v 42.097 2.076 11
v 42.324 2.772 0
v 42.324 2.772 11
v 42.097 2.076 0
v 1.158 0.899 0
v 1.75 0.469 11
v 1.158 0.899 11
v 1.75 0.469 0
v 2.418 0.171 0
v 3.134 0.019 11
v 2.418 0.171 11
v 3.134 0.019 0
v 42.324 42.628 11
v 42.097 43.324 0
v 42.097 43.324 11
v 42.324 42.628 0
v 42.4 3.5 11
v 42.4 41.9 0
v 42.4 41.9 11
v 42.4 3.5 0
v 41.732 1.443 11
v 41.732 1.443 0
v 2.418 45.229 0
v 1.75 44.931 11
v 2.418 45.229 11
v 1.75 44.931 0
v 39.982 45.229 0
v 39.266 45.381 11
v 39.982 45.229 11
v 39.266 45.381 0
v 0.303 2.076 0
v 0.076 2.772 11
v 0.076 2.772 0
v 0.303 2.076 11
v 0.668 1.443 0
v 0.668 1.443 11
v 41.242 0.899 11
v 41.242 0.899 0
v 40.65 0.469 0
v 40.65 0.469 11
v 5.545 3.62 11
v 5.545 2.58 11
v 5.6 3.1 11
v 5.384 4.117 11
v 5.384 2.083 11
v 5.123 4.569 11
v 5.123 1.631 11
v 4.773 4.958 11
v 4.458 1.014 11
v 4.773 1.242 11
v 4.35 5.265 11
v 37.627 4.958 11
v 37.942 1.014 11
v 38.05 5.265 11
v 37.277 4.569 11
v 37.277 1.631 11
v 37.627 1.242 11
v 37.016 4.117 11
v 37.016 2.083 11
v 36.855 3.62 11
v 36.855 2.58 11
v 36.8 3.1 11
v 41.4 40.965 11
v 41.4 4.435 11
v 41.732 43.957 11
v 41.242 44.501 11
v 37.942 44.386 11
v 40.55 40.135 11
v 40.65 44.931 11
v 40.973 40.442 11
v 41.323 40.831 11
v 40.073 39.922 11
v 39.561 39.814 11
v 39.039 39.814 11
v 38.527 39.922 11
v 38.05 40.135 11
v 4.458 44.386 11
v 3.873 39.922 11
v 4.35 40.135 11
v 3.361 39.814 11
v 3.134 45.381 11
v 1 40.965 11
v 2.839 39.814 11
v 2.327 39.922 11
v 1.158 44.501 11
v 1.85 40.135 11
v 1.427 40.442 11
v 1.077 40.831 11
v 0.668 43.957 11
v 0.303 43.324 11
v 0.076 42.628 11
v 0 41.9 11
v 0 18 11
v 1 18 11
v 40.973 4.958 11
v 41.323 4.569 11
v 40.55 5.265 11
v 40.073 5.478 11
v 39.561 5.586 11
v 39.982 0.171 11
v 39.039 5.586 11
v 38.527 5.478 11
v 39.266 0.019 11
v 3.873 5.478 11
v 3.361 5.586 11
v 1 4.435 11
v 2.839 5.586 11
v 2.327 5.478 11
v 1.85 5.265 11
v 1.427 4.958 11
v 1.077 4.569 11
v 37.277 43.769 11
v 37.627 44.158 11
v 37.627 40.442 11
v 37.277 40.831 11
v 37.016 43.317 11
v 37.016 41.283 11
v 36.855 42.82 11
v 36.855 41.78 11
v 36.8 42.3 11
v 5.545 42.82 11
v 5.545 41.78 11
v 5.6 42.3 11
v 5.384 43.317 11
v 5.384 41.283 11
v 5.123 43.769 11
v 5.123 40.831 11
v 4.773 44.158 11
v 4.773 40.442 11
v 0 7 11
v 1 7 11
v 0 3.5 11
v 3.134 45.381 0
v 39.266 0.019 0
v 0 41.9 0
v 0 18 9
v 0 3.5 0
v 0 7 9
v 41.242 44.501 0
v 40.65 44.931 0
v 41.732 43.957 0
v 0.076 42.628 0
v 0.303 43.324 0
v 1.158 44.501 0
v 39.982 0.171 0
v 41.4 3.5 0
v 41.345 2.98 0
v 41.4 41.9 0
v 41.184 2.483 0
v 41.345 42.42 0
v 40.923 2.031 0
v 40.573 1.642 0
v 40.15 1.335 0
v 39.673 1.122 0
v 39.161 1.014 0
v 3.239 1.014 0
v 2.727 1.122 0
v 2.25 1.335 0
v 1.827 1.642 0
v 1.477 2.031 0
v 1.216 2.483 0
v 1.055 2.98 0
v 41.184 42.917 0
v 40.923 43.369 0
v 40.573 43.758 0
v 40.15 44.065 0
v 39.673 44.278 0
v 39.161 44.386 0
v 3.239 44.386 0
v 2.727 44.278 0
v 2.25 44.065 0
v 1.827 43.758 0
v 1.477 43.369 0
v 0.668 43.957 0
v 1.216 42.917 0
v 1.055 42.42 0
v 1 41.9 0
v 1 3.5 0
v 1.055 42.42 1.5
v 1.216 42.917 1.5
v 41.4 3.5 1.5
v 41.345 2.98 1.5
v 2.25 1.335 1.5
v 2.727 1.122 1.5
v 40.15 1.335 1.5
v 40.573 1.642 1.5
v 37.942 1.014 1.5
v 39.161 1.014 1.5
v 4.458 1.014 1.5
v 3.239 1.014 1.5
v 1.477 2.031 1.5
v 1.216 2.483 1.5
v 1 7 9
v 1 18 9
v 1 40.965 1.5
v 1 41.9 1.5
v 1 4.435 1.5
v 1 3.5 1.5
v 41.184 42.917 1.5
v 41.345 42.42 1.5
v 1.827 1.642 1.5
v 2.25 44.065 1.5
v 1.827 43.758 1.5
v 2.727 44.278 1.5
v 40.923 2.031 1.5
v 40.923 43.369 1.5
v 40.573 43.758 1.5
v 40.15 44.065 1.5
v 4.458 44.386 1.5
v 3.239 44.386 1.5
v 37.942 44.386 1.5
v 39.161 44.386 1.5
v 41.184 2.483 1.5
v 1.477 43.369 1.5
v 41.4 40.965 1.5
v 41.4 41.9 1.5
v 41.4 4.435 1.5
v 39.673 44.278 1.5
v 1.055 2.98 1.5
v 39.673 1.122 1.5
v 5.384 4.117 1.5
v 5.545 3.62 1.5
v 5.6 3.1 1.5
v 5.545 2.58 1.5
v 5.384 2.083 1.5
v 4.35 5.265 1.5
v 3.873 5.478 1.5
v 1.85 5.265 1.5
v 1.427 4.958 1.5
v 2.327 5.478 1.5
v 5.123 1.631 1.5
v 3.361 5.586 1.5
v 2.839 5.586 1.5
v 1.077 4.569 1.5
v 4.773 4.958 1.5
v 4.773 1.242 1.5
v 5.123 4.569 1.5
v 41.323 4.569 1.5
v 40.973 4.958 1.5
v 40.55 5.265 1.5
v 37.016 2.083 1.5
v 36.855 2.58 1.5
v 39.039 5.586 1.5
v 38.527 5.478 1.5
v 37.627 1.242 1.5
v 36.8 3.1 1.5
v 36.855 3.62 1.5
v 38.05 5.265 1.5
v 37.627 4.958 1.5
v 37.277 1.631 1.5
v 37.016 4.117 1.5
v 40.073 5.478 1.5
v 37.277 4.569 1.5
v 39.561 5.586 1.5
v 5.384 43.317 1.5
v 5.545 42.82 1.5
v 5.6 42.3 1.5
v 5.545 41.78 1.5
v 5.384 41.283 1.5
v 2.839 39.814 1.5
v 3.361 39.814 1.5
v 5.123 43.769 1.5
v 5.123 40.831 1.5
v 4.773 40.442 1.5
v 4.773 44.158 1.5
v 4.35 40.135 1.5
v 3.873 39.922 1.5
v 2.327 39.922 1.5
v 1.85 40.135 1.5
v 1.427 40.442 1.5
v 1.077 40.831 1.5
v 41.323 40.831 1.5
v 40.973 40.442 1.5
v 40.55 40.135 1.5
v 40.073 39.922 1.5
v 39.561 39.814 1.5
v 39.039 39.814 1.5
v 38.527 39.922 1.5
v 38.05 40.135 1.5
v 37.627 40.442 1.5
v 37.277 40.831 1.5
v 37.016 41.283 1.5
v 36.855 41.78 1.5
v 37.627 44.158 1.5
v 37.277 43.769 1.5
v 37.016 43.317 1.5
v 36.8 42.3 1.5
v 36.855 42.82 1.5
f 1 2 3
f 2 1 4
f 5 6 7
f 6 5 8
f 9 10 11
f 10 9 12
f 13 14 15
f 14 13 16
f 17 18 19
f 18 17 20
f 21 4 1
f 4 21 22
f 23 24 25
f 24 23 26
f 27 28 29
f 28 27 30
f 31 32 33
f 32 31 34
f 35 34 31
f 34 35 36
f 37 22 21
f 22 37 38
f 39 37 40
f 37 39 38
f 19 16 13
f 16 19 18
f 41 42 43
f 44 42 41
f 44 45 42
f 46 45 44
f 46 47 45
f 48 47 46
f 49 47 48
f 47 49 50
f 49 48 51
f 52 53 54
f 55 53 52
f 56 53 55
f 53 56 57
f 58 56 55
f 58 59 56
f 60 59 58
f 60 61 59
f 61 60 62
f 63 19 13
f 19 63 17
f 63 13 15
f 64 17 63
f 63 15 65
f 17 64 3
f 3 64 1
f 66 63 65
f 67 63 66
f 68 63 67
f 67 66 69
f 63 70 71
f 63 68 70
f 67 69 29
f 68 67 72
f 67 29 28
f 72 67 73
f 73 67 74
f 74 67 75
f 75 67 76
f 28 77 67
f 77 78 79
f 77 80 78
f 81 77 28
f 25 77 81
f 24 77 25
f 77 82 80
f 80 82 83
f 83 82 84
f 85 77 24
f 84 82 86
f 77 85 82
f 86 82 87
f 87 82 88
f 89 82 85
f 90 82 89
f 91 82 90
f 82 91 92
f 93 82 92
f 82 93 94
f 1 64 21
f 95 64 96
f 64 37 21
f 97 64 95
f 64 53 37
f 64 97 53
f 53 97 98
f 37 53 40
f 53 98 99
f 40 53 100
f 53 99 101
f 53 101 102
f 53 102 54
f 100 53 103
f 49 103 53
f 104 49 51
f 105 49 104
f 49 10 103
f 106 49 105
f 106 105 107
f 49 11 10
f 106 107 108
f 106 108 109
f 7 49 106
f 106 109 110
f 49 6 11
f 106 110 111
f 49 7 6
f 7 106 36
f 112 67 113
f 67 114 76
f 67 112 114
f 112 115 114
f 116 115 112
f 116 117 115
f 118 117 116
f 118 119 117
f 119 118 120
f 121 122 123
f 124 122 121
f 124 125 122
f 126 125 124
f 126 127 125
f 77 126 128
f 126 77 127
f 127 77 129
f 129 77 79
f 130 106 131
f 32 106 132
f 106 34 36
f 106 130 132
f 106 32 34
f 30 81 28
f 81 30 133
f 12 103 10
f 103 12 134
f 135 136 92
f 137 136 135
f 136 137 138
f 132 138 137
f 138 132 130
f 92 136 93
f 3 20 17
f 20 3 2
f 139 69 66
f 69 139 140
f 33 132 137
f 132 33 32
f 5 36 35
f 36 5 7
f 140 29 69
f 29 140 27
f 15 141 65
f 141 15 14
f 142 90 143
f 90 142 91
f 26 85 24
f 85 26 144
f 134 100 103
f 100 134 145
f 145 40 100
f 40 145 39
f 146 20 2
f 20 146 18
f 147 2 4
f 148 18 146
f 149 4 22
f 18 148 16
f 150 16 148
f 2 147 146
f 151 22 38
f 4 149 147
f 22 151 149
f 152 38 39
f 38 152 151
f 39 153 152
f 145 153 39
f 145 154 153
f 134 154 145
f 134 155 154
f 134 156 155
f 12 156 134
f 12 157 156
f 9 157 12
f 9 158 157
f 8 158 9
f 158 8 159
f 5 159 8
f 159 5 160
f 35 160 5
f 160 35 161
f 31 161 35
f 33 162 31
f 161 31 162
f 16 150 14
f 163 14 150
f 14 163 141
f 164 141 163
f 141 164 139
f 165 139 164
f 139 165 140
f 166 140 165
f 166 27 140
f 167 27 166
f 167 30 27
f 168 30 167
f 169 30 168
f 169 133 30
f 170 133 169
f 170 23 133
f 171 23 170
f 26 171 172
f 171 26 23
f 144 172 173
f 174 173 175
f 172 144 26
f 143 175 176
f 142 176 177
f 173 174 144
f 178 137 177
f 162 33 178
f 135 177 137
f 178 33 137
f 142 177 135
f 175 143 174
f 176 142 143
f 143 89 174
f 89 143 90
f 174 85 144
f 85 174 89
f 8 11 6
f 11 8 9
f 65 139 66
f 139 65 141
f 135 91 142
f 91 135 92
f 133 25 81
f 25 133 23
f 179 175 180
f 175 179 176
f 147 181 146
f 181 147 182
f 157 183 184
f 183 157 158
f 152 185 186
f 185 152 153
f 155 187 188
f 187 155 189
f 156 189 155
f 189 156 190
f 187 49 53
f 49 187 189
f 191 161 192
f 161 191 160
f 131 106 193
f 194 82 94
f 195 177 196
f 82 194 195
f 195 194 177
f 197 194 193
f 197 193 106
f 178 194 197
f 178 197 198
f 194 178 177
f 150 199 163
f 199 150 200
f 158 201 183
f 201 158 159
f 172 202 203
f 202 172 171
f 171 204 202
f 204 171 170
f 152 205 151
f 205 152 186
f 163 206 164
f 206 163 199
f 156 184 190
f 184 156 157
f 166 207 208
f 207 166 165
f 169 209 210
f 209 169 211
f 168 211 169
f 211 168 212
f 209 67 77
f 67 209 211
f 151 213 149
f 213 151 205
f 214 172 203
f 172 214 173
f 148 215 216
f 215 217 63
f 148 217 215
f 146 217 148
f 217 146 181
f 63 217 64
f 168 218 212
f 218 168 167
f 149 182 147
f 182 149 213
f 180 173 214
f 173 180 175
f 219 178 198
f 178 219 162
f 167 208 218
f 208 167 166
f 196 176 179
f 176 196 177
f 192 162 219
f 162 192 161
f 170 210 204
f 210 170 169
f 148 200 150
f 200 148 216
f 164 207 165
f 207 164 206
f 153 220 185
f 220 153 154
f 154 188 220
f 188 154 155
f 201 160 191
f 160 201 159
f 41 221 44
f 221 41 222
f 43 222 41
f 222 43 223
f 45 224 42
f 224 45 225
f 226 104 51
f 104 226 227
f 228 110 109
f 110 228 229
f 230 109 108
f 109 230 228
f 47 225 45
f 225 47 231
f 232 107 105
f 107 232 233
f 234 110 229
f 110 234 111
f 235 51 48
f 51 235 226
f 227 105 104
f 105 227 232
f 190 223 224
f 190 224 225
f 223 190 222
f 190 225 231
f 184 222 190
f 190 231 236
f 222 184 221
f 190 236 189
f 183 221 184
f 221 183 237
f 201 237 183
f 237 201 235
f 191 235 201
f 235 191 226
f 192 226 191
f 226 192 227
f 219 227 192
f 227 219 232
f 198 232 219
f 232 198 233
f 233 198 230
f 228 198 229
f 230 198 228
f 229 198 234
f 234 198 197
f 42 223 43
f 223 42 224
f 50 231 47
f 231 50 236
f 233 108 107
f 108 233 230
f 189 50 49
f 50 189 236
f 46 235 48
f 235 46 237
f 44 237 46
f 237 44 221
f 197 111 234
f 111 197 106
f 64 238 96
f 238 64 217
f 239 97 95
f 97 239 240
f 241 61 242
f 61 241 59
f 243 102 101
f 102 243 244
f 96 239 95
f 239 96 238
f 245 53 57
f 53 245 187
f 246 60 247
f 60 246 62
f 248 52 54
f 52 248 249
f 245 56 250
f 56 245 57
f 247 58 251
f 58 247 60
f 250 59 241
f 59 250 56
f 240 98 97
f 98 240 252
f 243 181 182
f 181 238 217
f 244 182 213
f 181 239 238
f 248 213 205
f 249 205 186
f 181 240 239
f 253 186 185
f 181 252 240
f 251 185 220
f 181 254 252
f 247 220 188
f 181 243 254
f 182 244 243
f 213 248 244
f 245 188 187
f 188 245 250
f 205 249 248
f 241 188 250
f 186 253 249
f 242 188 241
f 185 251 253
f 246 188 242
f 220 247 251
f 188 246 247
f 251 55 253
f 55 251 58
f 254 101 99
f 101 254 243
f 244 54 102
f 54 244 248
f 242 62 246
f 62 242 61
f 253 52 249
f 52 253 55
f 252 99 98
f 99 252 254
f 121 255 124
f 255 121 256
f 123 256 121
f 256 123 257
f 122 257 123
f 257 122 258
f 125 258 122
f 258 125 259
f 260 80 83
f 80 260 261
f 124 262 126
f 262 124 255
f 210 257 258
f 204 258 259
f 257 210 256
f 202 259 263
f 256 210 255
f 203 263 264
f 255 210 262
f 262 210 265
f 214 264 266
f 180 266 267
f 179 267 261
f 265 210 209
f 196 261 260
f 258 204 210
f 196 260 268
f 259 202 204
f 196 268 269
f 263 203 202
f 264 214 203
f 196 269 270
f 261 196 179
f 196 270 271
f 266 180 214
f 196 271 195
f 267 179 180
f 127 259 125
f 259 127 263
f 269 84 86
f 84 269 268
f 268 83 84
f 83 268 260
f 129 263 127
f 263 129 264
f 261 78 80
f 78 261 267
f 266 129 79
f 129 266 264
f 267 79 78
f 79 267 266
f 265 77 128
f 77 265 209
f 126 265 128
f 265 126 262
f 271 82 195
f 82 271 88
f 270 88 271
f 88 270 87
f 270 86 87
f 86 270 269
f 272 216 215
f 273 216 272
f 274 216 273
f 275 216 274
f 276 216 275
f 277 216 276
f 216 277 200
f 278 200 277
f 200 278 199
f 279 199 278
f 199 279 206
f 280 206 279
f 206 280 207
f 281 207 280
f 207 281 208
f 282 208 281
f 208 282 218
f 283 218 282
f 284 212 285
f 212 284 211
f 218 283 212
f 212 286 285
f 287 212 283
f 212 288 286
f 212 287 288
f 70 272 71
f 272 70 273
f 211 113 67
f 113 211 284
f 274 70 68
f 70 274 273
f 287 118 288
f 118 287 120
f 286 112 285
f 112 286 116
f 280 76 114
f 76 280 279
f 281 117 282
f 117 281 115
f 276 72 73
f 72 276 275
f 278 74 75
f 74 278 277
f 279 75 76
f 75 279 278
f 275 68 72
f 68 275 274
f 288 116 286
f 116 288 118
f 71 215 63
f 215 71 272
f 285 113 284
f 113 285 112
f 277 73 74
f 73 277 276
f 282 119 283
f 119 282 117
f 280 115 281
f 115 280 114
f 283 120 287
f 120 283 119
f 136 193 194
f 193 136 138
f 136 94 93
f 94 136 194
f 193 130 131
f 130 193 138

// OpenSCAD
$fn = 30;


tp_h = 1.6;
tp_w = 40.4;
tp_d = 43.4;
tp_r = 2.5;

wall_t = 1;

box_h = 11;
box_w = tp_w + 2*wall_t;
box_d = tp_d + 2*wall_t;
box_r = tp_r + wall_t;

pillar_h = box_h - 1.5;
pillar_overlap = 0.4;

module rounded_cube(x, y, z, r) {
    hull() {
        translate([r, r, 0])
        cylinder(r=r, h=z);
        translate([x-r, r, 0])
        cylinder(r=r, h=z);
        translate([x-r, y-r, 0])
        cylinder(r=r, h=z);
        translate([r, y-r, 0])
        cylinder(r=r, h=z);
    }
}


module touchpad_case() {
    difference() {
        union() {
            difference() {
                rounded_cube(box_w, box_d, box_h, box_r);
                translate([wall_t, wall_t, -1])
                    rounded_cube(tp_w, tp_d, box_h + 2, tp_r);
            }
            // corner pillars
            translate([wall_t + tp_r - pillar_overlap, wall_t + tp_r - pillar_overlap, box_h - pillar_h])
                cylinder(r=tp_r, h=pillar_h);
            translate([wall_t + tp_w - tp_r + pillar_overlap, wall_t + tp_r - pillar_overlap, box_h - pillar_h])
                cylinder(r=tp_r, h=pillar_h);
            translate([wall_t + tp_r - pillar_overlap, wall_t + tp_d - tp_r + pillar_overlap, box_h - pillar_h])
                cylinder(r=tp_r, h=pillar_h);
            translate([wall_t + tp_w - tp_r + pillar_overlap, wall_t + tp_d - tp_r + pillar_overlap, box_h - pillar_h])
                cylinder(r=tp_r, h=pillar_h);
        }
        translate([-5, 7, 9])
            cube([10, 11, 10]);
    }
}

touchpad_case();
